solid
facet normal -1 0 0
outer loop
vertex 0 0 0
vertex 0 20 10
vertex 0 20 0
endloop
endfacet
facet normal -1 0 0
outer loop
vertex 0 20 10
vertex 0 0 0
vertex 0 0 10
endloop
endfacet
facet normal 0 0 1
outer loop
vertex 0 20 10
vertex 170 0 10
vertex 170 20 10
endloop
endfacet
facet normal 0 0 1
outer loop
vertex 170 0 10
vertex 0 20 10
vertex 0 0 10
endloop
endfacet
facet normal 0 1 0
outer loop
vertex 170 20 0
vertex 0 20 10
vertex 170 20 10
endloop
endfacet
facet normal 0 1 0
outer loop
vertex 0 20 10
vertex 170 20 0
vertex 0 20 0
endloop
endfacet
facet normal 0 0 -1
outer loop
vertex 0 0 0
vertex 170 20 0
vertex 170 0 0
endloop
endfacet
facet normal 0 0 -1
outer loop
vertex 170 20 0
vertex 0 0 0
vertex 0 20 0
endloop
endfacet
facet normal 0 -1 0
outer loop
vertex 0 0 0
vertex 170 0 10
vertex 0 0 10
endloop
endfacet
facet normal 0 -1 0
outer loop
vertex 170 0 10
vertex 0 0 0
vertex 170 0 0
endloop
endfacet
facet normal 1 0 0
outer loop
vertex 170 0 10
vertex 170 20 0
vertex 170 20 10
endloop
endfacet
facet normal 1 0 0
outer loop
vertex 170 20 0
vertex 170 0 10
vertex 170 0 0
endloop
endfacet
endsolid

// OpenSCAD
// Crescent Wrench with Notched Handle

module crescent_wrench() {
    handle();
    head();
}

module handle() {
    difference() {
        union() {
            // Main handle
            translate([0, 0, 0])
                cube([150, 20, 10]);
            // Notch in handle
            translate([50, 5, 0])
                cube([10, 10, 10]);
        }
    }
}

module head() {
    translate([150, 0, 0])
        union() {
            // Fixed jaw
            translate([0, 0, 0])
                cube([20, 20, 10]);
            // Movable jaw
            translate([0, 10, 0])
                cube([10, 10, 10]);
            // Adjustment mechanism
            translate([10, 5, 0])
                cylinder(h=10, r=2, $fn=50);
        }
}

crescent_wrench();
